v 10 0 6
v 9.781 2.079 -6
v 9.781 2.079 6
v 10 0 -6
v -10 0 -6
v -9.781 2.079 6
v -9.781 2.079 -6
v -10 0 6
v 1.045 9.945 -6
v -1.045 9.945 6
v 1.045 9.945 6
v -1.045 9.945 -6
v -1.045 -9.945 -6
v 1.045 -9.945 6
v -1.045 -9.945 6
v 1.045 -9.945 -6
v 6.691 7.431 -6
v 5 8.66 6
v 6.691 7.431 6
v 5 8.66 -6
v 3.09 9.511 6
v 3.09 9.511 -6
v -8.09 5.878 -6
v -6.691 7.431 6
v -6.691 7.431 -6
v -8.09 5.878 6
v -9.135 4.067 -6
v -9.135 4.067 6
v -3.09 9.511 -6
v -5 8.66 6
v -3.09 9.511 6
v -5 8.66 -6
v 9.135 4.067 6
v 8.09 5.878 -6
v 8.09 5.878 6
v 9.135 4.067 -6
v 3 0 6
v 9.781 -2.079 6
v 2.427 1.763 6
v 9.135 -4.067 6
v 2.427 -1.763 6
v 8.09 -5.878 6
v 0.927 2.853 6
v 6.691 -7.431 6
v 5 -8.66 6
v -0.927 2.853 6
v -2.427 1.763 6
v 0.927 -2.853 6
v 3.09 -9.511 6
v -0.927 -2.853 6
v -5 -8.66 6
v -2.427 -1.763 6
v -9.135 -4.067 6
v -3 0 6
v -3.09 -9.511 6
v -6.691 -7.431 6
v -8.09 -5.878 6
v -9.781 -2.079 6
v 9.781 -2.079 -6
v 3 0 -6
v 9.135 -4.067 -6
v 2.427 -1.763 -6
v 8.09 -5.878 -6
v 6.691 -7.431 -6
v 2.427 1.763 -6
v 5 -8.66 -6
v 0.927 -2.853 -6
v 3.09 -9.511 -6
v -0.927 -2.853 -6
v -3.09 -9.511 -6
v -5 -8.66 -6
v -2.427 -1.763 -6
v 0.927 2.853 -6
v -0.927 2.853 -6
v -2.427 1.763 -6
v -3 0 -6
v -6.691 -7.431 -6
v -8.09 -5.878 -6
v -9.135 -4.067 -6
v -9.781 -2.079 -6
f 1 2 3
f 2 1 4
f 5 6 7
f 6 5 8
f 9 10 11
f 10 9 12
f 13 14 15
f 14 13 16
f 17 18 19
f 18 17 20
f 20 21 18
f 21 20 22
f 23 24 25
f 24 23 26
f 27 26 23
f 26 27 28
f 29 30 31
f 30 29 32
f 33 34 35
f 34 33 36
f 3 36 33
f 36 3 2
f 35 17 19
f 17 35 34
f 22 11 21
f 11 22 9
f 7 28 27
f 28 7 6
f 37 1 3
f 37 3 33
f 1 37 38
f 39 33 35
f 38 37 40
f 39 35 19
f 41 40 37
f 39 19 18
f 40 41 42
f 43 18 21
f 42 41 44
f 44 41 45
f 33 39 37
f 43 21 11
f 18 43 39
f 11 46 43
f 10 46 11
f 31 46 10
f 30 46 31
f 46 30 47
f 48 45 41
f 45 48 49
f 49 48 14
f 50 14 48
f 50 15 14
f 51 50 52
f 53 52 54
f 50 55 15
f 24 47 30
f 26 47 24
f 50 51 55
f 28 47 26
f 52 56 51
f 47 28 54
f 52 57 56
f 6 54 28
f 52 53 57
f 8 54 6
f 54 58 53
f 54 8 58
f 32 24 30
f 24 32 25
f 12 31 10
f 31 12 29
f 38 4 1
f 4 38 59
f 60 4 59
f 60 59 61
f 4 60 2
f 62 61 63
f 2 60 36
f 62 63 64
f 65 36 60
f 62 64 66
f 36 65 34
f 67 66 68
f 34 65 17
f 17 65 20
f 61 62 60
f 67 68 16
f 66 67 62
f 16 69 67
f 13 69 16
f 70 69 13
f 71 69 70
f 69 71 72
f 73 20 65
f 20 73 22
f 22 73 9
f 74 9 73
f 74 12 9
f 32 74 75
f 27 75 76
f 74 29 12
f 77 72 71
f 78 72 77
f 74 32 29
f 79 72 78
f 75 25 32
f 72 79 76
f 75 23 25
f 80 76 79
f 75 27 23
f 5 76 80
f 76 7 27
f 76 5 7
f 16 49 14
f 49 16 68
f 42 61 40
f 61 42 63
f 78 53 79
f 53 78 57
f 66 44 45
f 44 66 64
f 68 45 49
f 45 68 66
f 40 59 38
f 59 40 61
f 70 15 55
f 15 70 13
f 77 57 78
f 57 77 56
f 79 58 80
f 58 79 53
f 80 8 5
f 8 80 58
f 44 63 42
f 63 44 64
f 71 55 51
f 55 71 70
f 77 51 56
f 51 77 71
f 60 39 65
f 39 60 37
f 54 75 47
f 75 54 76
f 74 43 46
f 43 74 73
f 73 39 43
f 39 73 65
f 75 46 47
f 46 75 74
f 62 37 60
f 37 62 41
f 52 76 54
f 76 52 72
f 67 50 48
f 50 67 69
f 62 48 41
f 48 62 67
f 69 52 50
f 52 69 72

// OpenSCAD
difference() {
    cylinder(h = 12, d = 20, center = true);
    cylinder(h = 14, d = 6, center = true);
}
